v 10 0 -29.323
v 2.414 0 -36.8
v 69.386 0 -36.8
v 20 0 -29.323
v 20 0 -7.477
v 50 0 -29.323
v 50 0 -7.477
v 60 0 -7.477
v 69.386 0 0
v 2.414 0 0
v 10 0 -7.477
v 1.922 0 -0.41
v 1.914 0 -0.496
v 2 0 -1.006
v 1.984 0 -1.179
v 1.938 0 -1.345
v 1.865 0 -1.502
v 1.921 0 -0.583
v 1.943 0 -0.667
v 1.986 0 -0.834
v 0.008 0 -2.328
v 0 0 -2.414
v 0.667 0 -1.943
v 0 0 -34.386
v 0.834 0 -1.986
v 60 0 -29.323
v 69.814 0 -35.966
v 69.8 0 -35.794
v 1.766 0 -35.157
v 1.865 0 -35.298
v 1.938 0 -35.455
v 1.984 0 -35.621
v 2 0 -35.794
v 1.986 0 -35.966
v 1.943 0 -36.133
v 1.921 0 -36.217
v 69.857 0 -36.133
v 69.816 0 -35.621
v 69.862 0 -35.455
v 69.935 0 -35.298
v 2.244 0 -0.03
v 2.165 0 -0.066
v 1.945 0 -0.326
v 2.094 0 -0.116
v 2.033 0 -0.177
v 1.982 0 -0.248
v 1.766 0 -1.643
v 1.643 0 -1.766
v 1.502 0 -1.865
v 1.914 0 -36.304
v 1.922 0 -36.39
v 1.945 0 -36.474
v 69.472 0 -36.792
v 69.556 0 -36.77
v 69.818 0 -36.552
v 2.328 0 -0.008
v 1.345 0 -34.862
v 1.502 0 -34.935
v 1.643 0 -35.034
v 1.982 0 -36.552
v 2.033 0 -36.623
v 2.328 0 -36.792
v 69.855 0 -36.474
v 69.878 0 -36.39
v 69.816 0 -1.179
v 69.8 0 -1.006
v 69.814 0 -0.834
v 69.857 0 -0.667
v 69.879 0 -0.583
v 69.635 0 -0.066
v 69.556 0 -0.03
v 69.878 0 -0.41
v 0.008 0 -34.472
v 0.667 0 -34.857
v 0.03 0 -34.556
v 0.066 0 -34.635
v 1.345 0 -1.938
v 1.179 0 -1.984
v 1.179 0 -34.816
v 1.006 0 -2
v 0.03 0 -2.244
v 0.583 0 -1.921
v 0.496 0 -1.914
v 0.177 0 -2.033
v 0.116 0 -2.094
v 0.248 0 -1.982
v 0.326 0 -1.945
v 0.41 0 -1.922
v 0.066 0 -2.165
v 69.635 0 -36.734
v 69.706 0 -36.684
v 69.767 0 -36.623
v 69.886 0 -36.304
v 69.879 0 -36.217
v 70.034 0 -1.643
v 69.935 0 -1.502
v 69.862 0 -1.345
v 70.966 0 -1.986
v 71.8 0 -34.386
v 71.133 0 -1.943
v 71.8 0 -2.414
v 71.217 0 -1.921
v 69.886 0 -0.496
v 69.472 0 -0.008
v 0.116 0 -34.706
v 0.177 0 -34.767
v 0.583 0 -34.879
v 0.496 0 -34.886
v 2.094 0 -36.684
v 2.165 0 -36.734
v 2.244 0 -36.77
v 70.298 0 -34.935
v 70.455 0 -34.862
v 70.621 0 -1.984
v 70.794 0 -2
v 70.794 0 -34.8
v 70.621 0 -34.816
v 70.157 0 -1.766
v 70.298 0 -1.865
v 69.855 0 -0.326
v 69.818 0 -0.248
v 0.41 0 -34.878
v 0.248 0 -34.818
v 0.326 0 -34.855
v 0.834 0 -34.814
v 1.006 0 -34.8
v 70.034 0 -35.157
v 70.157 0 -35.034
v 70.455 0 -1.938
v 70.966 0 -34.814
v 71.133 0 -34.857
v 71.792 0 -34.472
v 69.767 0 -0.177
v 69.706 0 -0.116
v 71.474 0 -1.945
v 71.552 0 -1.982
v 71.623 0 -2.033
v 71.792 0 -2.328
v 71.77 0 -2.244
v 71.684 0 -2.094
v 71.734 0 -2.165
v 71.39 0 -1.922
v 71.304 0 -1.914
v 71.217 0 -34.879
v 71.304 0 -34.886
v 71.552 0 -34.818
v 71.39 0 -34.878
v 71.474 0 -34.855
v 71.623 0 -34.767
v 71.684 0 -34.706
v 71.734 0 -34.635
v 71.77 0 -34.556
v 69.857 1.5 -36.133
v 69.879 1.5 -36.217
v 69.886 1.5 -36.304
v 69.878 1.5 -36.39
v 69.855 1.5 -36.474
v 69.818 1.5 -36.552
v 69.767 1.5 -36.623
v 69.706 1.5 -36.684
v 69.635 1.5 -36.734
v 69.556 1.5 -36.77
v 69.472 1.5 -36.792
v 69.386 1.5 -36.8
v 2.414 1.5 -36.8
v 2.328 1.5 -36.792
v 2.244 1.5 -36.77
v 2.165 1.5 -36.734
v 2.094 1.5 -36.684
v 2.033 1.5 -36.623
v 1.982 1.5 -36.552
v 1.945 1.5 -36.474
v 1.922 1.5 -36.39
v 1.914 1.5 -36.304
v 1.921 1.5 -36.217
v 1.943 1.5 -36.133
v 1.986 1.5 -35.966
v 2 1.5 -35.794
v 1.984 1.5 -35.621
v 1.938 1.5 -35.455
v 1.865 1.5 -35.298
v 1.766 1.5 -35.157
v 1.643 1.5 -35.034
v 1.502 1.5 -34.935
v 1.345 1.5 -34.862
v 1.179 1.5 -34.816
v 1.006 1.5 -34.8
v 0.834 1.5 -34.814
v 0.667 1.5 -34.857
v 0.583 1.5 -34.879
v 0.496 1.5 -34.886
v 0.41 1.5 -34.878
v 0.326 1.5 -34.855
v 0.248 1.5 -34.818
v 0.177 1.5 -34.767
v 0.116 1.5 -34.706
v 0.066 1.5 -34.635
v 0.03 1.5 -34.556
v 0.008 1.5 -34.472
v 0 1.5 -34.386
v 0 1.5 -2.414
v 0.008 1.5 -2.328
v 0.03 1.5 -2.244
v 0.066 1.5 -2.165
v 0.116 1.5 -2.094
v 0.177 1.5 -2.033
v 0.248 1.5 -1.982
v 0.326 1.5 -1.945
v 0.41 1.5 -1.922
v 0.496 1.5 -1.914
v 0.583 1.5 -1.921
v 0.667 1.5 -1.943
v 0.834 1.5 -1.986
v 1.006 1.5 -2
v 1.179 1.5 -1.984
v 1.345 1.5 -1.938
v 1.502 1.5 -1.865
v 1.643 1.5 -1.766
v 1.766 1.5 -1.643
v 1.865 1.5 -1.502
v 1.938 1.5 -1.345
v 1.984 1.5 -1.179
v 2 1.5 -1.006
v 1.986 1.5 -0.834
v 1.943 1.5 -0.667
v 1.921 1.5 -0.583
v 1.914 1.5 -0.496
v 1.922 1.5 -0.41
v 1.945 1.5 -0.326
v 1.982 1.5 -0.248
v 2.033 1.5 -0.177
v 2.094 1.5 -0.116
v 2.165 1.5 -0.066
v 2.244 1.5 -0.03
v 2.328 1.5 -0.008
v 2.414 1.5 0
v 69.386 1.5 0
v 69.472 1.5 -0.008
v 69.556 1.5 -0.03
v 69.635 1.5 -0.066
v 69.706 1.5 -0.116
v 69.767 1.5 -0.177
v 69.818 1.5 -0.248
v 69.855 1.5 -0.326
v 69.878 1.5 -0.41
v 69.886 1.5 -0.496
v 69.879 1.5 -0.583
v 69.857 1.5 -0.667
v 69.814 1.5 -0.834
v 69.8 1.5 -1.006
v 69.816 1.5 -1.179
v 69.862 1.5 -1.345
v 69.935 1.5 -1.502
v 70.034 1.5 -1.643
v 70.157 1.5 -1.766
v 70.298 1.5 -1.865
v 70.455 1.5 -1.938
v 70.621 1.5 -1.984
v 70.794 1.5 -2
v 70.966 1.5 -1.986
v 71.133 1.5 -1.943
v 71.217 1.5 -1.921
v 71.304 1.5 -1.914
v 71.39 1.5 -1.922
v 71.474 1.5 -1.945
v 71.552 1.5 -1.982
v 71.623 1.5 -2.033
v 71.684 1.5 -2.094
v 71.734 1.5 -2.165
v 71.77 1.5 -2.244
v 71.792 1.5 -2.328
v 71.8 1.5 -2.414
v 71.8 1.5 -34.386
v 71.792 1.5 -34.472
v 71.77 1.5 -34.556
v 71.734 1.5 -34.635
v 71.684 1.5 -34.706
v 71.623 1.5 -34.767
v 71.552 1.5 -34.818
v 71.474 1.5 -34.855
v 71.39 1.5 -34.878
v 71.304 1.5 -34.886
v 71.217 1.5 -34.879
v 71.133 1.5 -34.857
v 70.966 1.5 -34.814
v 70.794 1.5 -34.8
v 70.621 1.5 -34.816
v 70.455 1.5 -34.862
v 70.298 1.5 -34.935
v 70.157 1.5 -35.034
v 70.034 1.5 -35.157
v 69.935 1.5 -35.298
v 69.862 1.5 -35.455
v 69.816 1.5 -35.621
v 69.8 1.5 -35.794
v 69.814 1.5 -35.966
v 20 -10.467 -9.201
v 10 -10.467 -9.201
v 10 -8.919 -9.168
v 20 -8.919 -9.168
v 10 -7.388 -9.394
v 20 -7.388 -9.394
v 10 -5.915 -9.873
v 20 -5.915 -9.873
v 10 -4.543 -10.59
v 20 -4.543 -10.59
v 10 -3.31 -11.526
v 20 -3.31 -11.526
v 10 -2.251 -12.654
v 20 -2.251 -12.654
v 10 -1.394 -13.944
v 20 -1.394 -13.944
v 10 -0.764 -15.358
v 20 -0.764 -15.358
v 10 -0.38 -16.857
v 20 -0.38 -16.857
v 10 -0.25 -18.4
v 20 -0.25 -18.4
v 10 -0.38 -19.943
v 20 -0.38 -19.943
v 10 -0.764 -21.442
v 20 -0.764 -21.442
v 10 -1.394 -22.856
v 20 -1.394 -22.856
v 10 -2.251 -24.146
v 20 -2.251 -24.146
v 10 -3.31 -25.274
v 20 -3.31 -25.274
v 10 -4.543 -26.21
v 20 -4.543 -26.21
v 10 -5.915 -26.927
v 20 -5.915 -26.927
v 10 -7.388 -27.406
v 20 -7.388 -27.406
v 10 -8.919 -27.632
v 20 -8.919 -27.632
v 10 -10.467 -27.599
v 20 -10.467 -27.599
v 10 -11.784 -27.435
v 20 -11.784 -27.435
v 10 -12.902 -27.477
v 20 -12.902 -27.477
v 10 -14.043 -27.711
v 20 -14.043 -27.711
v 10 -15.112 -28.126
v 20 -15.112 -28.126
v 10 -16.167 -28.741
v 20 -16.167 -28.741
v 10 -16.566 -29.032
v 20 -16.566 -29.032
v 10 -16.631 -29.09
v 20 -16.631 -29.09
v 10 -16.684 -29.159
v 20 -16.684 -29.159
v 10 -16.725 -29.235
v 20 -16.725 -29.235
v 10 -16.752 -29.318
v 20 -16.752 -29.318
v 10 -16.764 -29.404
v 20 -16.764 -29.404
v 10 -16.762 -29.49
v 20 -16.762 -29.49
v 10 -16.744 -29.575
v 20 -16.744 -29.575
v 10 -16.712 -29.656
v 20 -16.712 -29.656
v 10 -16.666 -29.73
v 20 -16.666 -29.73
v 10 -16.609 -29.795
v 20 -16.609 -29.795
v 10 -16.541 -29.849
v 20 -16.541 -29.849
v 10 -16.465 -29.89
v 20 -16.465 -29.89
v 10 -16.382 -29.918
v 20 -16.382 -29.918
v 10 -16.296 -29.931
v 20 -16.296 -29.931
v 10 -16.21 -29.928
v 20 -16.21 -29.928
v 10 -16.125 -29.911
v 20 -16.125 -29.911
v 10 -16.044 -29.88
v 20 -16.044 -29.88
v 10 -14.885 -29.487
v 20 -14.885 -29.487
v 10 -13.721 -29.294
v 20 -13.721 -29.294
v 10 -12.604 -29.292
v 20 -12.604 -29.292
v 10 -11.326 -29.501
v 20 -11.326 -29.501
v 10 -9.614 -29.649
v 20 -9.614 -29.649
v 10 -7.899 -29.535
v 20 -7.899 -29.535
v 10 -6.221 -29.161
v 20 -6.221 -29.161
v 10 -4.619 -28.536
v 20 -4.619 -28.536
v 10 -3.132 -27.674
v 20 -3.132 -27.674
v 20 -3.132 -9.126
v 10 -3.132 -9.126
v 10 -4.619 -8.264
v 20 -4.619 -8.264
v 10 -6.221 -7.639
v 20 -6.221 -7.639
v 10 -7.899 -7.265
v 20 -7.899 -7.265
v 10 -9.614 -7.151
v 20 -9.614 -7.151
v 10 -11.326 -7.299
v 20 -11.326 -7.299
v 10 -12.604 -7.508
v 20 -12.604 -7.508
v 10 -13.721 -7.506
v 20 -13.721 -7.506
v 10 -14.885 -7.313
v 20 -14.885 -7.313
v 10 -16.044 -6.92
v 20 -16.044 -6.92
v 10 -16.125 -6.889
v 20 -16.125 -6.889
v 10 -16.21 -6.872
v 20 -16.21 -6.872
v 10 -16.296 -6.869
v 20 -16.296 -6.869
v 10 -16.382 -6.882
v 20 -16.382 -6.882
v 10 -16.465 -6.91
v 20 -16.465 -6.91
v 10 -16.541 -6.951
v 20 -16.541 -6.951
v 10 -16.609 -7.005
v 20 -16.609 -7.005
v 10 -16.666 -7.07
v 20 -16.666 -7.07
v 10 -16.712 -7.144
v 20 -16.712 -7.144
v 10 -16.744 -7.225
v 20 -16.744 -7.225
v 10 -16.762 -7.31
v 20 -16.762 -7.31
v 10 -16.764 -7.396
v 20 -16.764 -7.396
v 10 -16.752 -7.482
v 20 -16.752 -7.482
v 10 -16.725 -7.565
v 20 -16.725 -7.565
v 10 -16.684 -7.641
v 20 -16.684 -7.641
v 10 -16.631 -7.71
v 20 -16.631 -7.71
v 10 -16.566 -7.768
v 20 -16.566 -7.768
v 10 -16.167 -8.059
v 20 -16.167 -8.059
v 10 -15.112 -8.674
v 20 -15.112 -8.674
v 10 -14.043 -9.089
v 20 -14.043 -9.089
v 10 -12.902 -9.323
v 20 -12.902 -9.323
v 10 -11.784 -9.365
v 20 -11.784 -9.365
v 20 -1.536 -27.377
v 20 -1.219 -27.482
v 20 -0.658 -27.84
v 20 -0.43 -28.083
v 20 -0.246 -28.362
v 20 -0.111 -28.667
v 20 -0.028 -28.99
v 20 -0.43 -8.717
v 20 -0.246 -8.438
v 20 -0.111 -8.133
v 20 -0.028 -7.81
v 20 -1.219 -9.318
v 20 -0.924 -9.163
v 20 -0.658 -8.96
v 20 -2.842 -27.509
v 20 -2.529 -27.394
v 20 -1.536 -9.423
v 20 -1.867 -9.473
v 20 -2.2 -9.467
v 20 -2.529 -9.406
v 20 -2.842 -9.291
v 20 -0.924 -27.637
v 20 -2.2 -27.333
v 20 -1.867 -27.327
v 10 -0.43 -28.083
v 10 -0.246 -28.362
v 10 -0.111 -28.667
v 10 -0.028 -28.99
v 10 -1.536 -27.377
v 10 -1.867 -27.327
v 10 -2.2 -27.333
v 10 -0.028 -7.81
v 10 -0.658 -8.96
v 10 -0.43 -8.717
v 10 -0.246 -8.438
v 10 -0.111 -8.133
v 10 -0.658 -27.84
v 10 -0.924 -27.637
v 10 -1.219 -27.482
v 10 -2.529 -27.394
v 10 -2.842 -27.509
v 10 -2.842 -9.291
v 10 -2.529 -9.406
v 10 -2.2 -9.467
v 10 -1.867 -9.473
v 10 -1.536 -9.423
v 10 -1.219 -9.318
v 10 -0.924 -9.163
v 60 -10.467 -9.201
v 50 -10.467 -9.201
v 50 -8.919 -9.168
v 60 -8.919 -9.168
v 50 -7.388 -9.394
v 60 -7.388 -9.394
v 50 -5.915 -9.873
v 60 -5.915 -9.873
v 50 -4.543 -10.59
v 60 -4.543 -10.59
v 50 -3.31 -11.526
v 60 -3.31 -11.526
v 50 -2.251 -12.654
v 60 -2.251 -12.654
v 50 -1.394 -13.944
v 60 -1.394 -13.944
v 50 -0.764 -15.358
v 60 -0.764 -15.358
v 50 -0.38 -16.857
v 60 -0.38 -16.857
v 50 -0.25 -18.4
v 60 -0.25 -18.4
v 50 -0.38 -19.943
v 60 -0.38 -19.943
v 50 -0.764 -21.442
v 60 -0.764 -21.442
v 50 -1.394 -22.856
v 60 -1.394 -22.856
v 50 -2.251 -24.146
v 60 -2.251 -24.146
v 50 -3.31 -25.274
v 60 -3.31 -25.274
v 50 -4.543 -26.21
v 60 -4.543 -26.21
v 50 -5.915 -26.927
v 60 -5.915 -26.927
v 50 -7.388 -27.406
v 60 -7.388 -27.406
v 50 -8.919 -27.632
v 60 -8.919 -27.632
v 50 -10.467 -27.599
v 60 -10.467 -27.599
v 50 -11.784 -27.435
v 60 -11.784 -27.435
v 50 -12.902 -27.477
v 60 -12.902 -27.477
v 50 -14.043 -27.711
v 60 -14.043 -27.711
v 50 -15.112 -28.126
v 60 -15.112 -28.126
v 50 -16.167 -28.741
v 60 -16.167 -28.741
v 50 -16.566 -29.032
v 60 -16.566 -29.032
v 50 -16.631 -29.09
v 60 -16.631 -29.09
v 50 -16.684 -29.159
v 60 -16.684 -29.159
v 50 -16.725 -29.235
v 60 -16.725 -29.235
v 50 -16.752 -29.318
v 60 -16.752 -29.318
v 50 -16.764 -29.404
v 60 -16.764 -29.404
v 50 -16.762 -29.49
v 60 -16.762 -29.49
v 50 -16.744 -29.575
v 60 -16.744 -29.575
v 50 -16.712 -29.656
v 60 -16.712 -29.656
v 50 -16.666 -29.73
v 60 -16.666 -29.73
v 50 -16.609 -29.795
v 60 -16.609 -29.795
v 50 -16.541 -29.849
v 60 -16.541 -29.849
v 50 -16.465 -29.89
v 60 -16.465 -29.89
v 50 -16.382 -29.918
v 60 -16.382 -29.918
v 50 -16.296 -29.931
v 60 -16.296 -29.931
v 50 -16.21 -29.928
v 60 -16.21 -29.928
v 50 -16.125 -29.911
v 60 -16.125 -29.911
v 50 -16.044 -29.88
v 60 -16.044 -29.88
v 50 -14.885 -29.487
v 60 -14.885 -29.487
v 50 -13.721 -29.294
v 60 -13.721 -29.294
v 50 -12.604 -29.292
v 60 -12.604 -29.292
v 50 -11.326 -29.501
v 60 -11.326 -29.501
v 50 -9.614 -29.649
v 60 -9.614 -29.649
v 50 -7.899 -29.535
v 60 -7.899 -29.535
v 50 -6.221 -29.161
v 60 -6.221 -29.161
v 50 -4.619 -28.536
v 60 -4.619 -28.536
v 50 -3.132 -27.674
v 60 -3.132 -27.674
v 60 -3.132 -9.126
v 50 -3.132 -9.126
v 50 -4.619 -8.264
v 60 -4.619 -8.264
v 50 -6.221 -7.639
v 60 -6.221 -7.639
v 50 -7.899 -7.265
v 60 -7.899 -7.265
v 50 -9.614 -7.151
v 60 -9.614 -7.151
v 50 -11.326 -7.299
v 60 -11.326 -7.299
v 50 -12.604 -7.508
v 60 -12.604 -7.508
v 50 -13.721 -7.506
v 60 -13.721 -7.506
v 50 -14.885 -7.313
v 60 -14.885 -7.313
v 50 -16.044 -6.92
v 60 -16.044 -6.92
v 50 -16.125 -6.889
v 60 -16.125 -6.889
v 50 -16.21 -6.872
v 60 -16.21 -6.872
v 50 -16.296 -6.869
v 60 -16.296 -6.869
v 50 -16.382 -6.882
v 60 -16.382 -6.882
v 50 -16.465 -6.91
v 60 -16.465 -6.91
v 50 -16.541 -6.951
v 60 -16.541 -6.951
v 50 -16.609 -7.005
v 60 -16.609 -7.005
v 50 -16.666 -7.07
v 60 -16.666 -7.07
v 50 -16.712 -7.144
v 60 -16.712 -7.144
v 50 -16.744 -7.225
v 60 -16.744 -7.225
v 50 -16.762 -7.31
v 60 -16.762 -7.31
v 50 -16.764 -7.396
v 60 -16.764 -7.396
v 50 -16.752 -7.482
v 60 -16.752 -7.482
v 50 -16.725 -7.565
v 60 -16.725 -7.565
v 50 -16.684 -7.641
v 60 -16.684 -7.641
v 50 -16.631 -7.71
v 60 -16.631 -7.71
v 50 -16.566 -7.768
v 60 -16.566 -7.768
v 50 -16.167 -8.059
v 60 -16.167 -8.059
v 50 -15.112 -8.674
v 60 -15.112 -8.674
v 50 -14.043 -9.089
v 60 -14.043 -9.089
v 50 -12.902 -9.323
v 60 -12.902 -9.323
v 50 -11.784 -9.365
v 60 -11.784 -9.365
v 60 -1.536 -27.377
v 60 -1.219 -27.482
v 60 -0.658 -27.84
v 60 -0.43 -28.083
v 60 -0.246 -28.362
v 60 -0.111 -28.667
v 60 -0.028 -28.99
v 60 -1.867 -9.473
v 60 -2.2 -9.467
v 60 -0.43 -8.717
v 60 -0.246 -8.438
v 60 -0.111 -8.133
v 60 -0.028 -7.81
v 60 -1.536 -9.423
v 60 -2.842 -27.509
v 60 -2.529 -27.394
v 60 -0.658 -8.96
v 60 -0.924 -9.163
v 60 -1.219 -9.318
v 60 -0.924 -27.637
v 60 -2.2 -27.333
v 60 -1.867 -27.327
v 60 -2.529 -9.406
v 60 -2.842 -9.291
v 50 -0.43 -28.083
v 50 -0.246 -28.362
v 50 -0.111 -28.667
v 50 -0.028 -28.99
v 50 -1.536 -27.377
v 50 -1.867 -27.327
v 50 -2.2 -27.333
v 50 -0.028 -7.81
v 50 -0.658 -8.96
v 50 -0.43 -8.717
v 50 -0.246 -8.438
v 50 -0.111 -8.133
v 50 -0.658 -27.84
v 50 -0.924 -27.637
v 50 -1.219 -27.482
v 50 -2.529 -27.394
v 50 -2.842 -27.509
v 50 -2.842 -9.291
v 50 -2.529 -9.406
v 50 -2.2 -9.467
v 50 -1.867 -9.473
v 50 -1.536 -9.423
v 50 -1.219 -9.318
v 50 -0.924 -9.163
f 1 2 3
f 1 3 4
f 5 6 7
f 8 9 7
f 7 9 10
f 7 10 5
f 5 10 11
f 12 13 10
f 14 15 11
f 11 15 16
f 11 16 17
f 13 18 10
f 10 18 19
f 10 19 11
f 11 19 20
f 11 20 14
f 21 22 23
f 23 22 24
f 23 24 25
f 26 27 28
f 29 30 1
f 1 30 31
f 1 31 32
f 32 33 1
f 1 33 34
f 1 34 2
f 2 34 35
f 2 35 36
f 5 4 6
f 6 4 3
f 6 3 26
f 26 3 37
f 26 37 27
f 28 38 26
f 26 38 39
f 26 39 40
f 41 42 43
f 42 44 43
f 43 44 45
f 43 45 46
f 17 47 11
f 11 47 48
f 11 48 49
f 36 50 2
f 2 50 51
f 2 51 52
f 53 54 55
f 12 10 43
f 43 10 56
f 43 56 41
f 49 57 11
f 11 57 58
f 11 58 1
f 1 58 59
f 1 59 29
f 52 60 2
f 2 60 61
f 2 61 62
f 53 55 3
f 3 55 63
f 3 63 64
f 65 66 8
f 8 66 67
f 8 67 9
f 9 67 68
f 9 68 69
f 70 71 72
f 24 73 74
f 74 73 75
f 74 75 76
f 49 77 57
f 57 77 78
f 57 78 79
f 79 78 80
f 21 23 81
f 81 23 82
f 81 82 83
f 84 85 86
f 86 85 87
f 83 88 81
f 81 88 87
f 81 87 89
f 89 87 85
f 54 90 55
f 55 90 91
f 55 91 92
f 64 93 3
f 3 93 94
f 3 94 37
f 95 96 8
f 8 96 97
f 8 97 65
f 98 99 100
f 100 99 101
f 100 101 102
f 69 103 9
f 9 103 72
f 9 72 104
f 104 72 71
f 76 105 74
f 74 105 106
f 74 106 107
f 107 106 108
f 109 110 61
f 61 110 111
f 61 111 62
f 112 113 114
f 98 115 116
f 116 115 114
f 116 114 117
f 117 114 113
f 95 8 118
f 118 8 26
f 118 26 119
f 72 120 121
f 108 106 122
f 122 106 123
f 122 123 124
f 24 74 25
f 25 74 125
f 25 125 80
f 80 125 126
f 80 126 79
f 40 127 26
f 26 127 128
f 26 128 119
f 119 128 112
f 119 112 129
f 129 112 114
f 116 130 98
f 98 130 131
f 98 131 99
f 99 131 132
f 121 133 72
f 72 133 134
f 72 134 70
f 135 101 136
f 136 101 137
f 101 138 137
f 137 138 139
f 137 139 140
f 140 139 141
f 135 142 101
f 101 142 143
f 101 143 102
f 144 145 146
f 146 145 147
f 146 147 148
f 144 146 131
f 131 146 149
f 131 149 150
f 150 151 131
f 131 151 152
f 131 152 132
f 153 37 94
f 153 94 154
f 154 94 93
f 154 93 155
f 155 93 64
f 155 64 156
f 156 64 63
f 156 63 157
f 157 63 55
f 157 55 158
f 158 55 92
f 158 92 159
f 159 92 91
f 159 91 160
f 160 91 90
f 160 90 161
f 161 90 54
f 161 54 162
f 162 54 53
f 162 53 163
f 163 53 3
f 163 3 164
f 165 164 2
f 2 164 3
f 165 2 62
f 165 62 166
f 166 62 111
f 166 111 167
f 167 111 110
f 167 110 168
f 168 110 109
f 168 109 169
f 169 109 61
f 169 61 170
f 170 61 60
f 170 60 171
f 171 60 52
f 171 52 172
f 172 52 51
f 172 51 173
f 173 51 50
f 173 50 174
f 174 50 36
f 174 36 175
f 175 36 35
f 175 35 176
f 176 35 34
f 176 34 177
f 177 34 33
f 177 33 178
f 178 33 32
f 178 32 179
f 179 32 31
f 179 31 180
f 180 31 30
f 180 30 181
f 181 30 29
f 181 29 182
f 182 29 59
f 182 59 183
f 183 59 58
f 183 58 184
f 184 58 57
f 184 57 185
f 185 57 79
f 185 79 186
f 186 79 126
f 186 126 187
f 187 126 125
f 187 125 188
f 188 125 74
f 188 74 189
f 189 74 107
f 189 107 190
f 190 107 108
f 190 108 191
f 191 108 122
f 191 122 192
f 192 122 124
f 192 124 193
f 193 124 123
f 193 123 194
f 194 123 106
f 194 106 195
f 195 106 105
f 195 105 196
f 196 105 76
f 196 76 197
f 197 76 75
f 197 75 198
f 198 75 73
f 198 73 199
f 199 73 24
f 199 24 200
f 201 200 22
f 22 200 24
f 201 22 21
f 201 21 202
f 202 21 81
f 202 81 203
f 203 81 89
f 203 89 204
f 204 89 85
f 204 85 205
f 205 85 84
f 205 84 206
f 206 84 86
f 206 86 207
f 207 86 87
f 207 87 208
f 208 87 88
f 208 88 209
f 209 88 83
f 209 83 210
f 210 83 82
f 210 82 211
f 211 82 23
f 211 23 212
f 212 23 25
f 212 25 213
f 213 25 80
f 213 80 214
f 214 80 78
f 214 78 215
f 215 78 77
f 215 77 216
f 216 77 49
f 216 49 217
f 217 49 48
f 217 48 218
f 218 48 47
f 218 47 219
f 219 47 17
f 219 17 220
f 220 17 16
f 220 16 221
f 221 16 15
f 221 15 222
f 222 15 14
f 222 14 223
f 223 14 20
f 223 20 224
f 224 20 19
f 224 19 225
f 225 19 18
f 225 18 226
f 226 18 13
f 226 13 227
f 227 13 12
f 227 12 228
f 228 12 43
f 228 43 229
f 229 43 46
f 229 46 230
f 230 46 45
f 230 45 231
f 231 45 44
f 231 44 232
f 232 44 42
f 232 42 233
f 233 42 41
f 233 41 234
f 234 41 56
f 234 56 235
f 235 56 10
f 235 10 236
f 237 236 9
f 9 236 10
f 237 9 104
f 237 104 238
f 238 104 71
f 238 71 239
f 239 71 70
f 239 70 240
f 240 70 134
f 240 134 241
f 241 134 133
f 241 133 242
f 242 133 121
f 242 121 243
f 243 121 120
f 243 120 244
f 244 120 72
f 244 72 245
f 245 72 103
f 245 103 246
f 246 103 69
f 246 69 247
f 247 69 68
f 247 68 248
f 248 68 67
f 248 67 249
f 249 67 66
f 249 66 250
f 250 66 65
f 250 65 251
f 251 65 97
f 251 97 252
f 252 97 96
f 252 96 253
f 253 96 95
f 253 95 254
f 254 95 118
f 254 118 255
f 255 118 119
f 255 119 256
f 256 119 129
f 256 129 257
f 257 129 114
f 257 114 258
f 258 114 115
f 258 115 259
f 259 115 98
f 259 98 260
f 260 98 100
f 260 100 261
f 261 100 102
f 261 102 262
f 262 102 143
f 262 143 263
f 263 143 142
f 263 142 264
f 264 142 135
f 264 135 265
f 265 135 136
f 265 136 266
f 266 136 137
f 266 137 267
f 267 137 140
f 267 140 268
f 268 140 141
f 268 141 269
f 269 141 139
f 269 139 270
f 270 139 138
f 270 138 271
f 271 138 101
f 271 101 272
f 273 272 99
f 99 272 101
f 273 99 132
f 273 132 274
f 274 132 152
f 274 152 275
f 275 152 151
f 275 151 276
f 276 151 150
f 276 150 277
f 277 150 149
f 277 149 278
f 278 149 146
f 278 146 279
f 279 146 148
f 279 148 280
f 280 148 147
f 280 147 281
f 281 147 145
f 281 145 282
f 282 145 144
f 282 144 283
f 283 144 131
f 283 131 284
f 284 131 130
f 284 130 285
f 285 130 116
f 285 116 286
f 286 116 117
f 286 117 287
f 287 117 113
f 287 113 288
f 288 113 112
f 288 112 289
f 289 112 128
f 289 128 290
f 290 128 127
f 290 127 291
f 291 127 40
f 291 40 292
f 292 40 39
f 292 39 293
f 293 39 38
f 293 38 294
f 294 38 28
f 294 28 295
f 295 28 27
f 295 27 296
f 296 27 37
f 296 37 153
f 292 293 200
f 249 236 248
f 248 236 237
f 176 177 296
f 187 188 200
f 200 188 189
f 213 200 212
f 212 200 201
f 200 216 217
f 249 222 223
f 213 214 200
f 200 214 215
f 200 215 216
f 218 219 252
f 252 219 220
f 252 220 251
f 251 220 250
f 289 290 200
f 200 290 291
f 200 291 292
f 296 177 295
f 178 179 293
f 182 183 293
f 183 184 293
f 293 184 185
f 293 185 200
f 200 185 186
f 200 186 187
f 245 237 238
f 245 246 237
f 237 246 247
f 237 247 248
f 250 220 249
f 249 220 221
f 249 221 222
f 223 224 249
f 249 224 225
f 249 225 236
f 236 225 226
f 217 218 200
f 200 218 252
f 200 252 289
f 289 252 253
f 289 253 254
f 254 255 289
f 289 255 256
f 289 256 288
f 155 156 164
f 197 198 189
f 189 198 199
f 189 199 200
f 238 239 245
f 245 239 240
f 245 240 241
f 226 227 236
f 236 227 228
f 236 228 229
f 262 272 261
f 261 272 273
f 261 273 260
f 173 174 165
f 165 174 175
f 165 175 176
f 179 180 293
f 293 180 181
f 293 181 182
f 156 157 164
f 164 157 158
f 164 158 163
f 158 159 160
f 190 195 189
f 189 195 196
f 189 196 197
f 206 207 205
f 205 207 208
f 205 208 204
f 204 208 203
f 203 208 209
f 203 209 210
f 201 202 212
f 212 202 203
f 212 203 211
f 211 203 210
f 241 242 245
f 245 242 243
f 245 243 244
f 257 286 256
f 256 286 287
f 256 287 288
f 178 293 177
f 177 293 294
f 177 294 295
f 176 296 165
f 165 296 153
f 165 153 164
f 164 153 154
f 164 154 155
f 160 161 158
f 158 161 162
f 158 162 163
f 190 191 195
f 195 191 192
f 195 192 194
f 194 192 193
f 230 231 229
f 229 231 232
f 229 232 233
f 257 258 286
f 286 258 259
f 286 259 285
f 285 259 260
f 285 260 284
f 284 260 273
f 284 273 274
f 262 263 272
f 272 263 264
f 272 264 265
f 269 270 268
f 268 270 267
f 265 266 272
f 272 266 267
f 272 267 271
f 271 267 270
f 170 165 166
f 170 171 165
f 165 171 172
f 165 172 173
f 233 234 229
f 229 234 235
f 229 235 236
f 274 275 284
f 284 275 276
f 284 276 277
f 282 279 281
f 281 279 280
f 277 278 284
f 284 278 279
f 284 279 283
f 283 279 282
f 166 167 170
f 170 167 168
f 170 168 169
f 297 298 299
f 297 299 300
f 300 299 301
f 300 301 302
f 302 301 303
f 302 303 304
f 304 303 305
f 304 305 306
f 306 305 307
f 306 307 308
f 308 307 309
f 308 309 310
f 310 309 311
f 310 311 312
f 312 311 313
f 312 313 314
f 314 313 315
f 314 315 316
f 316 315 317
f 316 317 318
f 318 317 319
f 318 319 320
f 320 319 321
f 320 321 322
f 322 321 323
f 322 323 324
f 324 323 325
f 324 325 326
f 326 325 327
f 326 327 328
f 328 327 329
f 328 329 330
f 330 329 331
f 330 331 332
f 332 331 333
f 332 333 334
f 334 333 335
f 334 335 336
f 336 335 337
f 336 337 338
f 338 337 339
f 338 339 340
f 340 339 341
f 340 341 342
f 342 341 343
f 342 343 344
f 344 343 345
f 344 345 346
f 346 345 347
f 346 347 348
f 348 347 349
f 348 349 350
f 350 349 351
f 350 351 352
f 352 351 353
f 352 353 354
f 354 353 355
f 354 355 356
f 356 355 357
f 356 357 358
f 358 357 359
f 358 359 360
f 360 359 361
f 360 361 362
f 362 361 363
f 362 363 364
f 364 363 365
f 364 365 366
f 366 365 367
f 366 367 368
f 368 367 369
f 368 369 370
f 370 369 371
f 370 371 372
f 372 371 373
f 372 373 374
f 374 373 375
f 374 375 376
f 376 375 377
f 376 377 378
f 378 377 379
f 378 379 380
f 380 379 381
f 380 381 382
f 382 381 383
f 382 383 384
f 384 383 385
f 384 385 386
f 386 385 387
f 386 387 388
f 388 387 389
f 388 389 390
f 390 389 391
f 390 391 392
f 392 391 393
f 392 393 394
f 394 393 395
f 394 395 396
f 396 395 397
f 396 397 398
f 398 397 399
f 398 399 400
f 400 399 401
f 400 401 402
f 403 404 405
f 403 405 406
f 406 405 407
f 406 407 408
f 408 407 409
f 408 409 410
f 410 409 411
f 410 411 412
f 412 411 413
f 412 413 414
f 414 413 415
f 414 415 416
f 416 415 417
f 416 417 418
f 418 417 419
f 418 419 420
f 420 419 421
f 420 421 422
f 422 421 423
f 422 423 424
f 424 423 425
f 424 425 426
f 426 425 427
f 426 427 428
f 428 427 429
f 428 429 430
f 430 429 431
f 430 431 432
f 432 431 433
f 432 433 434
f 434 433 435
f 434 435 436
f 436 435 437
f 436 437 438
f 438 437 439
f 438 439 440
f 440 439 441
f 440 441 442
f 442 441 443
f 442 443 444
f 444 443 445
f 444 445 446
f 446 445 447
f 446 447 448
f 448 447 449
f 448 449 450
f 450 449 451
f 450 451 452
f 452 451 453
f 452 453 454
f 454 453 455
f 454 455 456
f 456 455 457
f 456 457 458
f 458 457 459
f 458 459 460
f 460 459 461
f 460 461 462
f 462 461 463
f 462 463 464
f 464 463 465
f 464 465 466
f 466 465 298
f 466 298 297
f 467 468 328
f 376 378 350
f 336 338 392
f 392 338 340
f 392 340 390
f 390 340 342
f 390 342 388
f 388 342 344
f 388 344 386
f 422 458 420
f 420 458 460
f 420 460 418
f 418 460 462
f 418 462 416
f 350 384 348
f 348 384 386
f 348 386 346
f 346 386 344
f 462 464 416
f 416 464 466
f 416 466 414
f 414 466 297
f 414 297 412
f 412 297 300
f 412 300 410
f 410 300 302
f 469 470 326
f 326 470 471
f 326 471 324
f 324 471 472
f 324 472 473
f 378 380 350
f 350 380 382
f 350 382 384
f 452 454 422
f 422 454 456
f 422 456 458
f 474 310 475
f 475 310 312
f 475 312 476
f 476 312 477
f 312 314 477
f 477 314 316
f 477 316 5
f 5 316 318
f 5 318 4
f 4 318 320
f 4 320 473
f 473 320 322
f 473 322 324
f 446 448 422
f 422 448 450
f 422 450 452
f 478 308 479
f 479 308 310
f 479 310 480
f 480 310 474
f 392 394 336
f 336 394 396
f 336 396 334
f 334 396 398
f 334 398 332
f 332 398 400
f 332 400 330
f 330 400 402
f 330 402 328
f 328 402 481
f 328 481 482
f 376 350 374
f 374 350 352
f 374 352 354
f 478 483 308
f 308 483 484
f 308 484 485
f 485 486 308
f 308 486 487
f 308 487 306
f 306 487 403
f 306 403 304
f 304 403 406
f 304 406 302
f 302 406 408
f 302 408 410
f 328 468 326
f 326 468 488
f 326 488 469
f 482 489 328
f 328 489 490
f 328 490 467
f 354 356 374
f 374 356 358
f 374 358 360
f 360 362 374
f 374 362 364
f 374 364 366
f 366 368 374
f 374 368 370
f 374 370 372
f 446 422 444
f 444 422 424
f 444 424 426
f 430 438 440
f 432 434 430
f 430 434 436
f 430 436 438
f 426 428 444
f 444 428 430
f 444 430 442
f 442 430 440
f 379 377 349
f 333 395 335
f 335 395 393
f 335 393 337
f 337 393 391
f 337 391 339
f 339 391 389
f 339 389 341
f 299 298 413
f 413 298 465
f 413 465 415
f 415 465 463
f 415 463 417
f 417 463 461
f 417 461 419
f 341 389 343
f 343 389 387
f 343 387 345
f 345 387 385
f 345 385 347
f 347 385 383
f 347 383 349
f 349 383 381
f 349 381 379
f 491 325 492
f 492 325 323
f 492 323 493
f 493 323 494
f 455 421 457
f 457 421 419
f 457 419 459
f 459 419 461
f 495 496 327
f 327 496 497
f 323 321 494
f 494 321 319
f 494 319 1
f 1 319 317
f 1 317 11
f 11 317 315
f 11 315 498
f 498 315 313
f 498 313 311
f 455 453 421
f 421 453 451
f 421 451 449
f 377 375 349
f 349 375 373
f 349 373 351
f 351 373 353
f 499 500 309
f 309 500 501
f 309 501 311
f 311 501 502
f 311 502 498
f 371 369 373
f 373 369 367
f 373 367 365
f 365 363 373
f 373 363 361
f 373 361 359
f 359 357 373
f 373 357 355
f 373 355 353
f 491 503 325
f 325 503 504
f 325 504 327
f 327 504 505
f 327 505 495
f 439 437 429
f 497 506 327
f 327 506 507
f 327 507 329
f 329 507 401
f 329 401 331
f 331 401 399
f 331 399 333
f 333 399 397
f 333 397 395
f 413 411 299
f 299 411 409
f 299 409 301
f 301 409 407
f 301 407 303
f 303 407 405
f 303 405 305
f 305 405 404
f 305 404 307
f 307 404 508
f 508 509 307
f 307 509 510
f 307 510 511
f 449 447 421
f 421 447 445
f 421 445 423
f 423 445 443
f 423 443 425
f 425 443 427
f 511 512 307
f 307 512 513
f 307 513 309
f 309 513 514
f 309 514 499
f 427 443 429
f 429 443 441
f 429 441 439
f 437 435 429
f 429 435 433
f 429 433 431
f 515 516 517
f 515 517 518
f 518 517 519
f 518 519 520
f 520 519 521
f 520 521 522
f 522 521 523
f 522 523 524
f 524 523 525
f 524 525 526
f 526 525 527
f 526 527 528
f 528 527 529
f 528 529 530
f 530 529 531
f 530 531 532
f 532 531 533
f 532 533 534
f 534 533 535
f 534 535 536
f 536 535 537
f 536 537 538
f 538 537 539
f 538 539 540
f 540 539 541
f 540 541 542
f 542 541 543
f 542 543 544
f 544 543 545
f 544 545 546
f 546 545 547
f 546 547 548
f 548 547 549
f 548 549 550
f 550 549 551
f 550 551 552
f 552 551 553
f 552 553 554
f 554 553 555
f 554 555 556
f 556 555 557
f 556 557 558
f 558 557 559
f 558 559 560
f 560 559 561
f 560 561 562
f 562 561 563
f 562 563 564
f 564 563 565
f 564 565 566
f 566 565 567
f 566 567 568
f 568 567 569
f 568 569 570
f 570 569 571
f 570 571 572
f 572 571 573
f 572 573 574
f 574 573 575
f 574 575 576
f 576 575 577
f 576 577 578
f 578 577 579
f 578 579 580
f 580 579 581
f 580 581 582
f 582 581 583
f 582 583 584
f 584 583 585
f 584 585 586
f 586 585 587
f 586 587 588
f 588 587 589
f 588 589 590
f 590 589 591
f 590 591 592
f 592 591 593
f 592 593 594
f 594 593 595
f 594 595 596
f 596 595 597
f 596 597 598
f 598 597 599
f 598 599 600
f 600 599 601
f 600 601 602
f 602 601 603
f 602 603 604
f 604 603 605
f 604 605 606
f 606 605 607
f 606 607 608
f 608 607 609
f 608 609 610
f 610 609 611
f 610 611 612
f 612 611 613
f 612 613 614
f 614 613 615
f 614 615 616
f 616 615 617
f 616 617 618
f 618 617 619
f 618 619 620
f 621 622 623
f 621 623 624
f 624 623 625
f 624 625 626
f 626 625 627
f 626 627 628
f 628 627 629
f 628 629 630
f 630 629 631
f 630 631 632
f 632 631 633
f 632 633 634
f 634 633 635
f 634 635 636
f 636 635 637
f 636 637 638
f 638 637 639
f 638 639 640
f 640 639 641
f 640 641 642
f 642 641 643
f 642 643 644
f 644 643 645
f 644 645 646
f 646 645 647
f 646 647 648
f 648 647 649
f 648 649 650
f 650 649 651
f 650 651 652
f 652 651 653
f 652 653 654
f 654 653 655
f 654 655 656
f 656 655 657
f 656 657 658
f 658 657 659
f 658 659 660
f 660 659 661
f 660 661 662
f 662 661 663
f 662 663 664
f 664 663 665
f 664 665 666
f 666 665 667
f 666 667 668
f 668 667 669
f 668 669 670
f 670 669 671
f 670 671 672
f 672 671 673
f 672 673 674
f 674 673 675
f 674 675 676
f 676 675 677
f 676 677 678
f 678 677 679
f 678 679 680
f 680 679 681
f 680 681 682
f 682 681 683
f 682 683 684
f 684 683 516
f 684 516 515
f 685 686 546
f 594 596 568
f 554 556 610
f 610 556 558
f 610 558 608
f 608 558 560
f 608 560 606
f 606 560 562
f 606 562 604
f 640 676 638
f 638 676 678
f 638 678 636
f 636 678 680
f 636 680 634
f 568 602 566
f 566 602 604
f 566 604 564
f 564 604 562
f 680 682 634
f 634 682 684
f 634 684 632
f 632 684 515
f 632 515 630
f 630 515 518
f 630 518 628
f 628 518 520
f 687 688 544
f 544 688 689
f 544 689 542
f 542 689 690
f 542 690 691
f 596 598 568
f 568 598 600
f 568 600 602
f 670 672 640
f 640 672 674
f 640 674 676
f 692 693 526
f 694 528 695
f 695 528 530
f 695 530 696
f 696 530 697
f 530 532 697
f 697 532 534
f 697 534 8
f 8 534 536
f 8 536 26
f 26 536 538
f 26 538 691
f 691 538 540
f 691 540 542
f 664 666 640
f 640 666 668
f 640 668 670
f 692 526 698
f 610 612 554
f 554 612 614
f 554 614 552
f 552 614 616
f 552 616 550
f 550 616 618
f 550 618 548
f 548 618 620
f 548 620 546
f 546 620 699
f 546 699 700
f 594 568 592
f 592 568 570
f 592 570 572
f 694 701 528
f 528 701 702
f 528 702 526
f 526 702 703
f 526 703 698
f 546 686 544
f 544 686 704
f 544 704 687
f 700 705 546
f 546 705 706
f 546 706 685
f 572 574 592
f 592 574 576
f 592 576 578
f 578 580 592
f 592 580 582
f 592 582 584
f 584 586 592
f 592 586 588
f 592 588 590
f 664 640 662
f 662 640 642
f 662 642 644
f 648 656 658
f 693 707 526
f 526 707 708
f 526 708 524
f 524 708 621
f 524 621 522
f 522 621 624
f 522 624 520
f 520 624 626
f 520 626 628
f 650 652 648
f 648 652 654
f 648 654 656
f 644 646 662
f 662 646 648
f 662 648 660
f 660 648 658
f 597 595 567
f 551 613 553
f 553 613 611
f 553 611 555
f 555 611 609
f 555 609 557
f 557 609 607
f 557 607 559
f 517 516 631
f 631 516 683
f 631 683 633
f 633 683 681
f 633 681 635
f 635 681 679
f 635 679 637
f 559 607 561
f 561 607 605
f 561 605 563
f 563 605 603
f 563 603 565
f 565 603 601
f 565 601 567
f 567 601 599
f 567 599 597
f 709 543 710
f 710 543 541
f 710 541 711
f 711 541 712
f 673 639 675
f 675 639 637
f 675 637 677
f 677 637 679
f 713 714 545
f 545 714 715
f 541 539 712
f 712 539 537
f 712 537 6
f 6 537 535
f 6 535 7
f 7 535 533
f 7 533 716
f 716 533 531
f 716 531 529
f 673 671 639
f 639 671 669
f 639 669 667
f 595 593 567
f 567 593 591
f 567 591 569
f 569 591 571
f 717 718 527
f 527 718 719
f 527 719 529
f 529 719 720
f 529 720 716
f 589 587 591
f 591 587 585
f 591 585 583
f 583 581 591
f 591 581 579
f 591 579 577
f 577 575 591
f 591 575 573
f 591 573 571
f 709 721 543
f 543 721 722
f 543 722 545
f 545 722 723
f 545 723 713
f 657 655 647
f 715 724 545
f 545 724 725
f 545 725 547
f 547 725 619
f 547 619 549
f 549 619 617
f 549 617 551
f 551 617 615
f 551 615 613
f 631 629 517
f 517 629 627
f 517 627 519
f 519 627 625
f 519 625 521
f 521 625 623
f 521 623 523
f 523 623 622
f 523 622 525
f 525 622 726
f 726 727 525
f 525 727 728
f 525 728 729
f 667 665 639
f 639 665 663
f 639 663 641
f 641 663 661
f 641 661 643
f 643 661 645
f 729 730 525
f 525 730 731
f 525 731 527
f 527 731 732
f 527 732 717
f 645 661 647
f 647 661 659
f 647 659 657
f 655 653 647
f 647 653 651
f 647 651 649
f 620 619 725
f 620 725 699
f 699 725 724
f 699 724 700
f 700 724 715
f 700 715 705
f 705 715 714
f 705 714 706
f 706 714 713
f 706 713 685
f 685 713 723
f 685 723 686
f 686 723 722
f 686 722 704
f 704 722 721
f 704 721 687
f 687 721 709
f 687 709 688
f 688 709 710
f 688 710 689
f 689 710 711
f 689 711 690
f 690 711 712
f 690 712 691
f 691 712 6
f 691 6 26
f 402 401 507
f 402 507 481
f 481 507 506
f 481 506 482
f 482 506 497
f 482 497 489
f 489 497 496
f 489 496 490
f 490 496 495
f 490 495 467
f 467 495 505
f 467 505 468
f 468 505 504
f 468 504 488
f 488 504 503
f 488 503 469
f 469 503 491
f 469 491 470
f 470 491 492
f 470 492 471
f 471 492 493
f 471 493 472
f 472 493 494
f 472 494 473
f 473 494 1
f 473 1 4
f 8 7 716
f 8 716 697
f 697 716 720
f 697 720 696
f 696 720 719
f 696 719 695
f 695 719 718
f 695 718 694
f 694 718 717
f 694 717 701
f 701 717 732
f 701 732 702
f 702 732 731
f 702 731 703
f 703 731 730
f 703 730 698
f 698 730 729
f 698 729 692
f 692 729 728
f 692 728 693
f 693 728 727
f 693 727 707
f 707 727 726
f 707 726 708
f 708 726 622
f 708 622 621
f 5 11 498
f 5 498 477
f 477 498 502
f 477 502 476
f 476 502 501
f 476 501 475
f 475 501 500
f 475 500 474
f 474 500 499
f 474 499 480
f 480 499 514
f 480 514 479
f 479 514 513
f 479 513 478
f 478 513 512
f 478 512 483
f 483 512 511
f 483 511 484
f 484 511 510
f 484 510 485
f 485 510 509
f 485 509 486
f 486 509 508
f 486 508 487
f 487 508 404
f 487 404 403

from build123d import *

# Parameters (mm, degrees)
BOSS_EXTRUDE1_DEPTH = 1.5
BOSS_EXTRUDE2_START = -10
BOSS_EXTRUDE2_DEPTH = 10
BOSS_EXTRUDE3_START = -50
BOSS_EXTRUDE3_DEPTH = 10
FILLET1_R           = 2


with BuildPart() as part:
    # Sketch1 → Boss-Extrude1 (new body)
    with BuildSketch(Plane(origin=(0, 0, 0), x_dir=(1, 0, 0), z_dir=(0, 1, 0))):
        with BuildLine():
            Line((2.414213562, 0), (69.385786438, 0))
            ThreePointArc((69.385786438, 0), (69.794034728, 0.211324865), (69.857190958, 0.666666667))
            ThreePointArc((69.857190958, 0.666666667), (70.092893219, 1.707106781), (71.133333333, 1.942809042))
            ThreePointArc((71.133333333, 1.942809042), (71.588675135, 2.005965272), (71.8, 2.414213562))
            Line((71.8, 2.414213562), (71.8, 34.385786438))
            ThreePointArc((71.8, 34.385786438), (71.588675135, 34.794034728), (71.133333333, 34.857190958))
            ThreePointArc((71.133333333, 34.857190958), (70.092893219, 35.092893219), (69.857190958, 36.133333333))
            ThreePointArc((69.857190958, 36.133333333), (69.794034728, 36.588675135), (69.385786438, 36.8))
            Line((69.385786438, 36.8), (2.414213562, 36.8))
            ThreePointArc((2.414213562, 36.8), (2.005965272, 36.588675135), (1.942809042, 36.133333333))
            ThreePointArc((1.942809042, 36.133333333), (1.707106781, 35.092893219), (0.666666667, 34.857190958))
            ThreePointArc((0.666666667, 34.857190958), (0.211324865, 34.794034728), (0, 34.385786438))
            Line((0, 34.385786438), (0, 2.414213562))
            ThreePointArc((0, 2.414213562), (0.211324865, 2.005965272), (0.666666667, 1.942809042))
            ThreePointArc((0.666666667, 1.942809042), (1.707106781, 1.707106781), (1.942809042, 0.666666667))
            ThreePointArc((1.942809042, 0.666666667), (2.005965272, 0.211324865), (2.414213562, 0))
        make_face()
    extrude(amount=BOSS_EXTRUDE1_DEPTH)

    # Sketch3 → Boss-Extrude2 (add)
    with BuildSketch(Plane.ZY.offset(BOSS_EXTRUDE2_START)):
        with BuildLine():
            Line((-12.374014603, 0), (-24.425985397, 0))
            ThreePointArc((-24.425985397, 0), (-28.666594565, -4.90005043), (-29.500762028, -11.326357689))
            add(Edge.make_bspline(
                [(-29.500762028, -11.326357689), (-28.897266876, -13.751803061), (-29.879831091, -16.043728976)],
                knots=[0, 0, 0, 1, 1, 1], degree=2))
            ThreePointArc((-29.879831091, -16.043728976), (-29.693870441, -16.6908382), (-29.032229169, -16.566088301))
            add(Edge.make_bspline(
                [(-27.599358013, -10.46659824), (-26.907734986, -13.817809078), (-29.032229169, -16.566088301)],
                knots=[0, 0, 0, 1, 1, 1], degree=2))
            ThreePointArc((-27.599358013, -10.46659824), (-18.4, -0.25), (-9.200641987, -10.46659824))
            add(Edge.make_bspline(
                [(-9.200641987, -10.46659824), (-9.892265014, -13.817809078), (-7.767770831, -16.566088301)],
                knots=[0, 0, 0, 1, 1, 1], degree=2))
            ThreePointArc((-7.767770831, -16.566088301), (-7.106129559, -16.6908382), (-6.920168909, -16.043728976))
            add(Edge.make_bspline(
                [(-7.299237972, -11.326357689), (-7.902733124, -13.751803061), (-6.920168909, -16.043728976)],
                knots=[0, 0, 0, 1, 1, 1], degree=2))
            ThreePointArc((-7.299237972, -11.326357689), (-8.133405435, -4.90005043), (-12.374014603, 0))
        make_face()
    extrude(amount=-BOSS_EXTRUDE2_DEPTH)

    # Sketch3<3> → Boss-Extrude3 (add)
    with BuildSketch(Plane.ZY.offset(BOSS_EXTRUDE3_START)):
        with BuildLine():
            Line((-24.425985397, 0), (-12.374014603, 0))
            ThreePointArc((-12.374014603, 0), (-8.133405435, -4.90005043), (-7.299237972, -11.326357689))
            add(Edge.make_bspline(
                [(-7.299237972, -11.326357689), (-7.902733124, -13.751803061), (-6.920168909, -16.043728976)],
                knots=[0, 0, 0, 1, 1, 1], degree=2))
            ThreePointArc((-6.920168909, -16.043728976), (-7.106129559, -16.6908382), (-7.767770831, -16.566088301))
            add(Edge.make_bspline(
                [(-9.200641987, -10.46659824), (-9.892265014, -13.817809078), (-7.767770831, -16.566088301)],
                knots=[0, 0, 0, 1, 1, 1], degree=2))
            ThreePointArc((-9.200641987, -10.46659824), (-18.4, -0.25), (-27.599358013, -10.46659824))
            add(Edge.make_bspline(
                [(-27.599358013, -10.46659824), (-26.907734986, -13.817809078), (-29.032229169, -16.566088301)],
                knots=[0, 0, 0, 1, 1, 1], degree=2))
            ThreePointArc((-29.032229169, -16.566088301), (-29.693870441, -16.6908382), (-29.879831091, -16.043728976))
            add(Edge.make_bspline(
                [(-29.500762028, -11.326357689), (-28.897266876, -13.751803061), (-29.879831091, -16.043728976)],
                knots=[0, 0, 0, 1, 1, 1], degree=2))
            ThreePointArc((-29.500762028, -11.326357689), (-28.666594565, -4.90005043), (-24.425985397, 0))
        make_face()
    extrude(amount=-BOSS_EXTRUDE3_DEPTH)

    # Fillet1
    fillet1_edges = [part.edges().sort_by_distance(p)[0] for p in [
        (55, 0, -24.425985397),
        (15, 0, -24.425985397),
        (55, 0, -12.374014603),
        (15, 0, -12.374014603),
    ]]
    fillet(fillet1_edges, radius=FILLET1_R)


solid = part.part
